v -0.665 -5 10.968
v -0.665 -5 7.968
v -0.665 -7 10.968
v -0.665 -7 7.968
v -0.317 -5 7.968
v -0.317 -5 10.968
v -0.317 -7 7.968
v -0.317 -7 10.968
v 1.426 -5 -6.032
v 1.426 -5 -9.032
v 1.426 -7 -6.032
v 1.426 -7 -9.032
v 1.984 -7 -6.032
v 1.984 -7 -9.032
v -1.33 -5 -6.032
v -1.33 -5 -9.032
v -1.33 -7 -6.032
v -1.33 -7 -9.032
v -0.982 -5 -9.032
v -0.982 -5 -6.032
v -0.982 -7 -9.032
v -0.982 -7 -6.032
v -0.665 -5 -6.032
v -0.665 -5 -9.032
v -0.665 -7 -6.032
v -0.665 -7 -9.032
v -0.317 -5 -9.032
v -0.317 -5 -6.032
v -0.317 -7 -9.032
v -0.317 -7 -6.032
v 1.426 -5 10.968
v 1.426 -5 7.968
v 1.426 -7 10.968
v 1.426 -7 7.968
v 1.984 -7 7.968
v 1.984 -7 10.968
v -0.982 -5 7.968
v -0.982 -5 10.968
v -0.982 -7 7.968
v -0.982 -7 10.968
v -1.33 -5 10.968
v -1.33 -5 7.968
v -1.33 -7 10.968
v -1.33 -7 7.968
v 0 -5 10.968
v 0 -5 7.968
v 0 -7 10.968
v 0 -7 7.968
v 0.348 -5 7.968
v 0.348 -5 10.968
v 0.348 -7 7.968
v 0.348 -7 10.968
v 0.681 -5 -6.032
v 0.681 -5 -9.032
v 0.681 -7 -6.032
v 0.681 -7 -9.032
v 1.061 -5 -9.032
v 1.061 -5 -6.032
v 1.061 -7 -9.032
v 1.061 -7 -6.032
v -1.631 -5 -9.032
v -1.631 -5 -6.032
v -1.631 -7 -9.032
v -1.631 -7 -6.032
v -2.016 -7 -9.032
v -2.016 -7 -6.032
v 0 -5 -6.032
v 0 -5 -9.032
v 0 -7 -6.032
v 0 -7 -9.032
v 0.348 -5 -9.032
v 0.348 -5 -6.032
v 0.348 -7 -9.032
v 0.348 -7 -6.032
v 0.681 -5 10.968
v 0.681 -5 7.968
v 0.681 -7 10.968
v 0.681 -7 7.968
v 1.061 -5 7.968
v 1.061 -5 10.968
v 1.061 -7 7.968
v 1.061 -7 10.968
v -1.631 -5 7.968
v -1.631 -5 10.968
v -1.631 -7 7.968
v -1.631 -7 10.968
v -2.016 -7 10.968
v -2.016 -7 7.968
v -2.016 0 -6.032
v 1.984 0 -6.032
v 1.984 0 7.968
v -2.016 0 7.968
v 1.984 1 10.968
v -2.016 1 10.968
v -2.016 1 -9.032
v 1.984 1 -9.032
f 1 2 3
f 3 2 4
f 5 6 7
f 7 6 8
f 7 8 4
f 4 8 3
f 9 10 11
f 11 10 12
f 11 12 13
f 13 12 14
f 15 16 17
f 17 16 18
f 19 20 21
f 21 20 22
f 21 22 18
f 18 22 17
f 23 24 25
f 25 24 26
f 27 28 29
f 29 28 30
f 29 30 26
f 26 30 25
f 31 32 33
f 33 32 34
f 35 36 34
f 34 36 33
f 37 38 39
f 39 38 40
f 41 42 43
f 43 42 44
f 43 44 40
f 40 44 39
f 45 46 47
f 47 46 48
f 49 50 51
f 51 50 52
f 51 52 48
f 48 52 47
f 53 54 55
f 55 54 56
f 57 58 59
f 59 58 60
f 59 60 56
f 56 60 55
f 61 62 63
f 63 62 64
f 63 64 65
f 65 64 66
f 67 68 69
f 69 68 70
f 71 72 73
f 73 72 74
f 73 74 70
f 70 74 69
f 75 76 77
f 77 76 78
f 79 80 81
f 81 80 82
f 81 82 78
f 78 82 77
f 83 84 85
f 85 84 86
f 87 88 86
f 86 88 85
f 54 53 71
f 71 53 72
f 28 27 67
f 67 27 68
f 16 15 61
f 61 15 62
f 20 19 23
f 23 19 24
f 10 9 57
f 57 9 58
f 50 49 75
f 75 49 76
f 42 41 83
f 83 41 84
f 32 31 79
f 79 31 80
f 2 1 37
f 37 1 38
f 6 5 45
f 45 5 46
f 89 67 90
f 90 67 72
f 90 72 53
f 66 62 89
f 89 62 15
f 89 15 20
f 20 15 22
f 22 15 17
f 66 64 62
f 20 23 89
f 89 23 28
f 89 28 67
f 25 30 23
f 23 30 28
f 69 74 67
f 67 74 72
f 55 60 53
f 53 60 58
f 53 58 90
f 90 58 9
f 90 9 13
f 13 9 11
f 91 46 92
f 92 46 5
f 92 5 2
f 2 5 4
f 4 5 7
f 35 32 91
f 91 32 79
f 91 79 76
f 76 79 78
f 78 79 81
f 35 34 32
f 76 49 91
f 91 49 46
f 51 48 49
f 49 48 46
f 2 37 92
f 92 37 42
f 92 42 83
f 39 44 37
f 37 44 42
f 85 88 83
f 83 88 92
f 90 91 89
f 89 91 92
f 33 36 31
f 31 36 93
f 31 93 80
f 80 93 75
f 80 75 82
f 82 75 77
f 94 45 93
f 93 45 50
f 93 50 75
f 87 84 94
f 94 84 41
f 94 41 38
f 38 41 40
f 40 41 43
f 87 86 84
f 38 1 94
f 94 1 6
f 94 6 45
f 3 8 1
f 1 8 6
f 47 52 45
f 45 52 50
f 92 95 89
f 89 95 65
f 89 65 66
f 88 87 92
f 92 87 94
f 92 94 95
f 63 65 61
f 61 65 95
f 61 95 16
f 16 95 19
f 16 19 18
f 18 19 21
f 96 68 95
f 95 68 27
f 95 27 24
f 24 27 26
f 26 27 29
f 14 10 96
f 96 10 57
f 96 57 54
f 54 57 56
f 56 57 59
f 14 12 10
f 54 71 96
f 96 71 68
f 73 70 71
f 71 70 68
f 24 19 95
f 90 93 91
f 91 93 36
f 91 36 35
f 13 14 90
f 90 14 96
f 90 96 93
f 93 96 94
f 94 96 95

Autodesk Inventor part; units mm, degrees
ref_plane "YZ Plane" through (0, 0, 0) normal (1, 0, 0) x (0, 1, 0)
ref_plane "XZ Plane" through (0, 0, 0) normal (0, 1, 0) x (-1, 0, 0)
ref_plane "XY Plane" through (0, 0, 0) normal (0, 0, 1) x (1, 0, 0)
sketch "Skizze1" plane through (0, 0, 0) normal (0, 1, 0) x (-1, 0, 0)
  line L0 (2.0157, 10.9685) -> (-1.9843, 10.9685)
  line L1 (-1.9843, 10.9685) -> (-1.9843, -9.0315)
  line L2 (-1.9843, -9.0315) -> (2.0157, -9.0315)
  line L3 (2.0157, -9.0315) -> (2.0157, 10.9685)
  point P0 (0, 0)
  dimension "d0" = 4
  dimension "d1" = 20
extrude "Extrusion1" add sketch "Skizze1" along normal blind 1
sketch "Skizze2" plane through (0, 0, 0) normal (0, -1, 0) x (1, 0, 0)
  line L0 (-2.0157, -9.0315) -> (-2.0157, 10.9685) projected
  line L1 (-2.0157, 10.9685) -> (1.9843, 10.9685)
  line L2 (1.9843, 10.9685) -> (1.9843, 7.9685)
  line L3 (1.9843, 7.9685) -> (-2.0157, 7.9685)
  line L4 (-2.0157, 7.9685) -> (-2.0157, 10.9685)
  line L5 (-2.0157, -9.0315) -> (1.9843, -9.0315)
  line L6 (1.9843, -9.0315) -> (1.9843, -6.0315)
  line L7 (1.9843, -6.0315) -> (-2.0157, -6.0315)
  line L8 (-2.0157, -6.0315) -> (-2.0157, -9.0315)
  point P0 (0, 0)
  dimension "d4" = 4
  dimension "d5" = 3
  dimension "d6" = 4
  dimension "d7" = 3
extrude "Extrusion2" add sketch "Skizze2" along normal blind 5
sketch "Skizze3" plane through (0, -5, 0) normal (0, -1, 0) x (1, 0, 0)
  line L0 (1.9843, -9.0315) -> (-2.0157, -9.0315) projected
  line L1 (-2.0157, -6.0315) -> (-1.6314, -6.0315)
  line L2 (-1.6314, -6.0315) -> (-1.6314, -9.0315)
  line L3 (-1.6314, -9.0315) -> (-2.0157, -9.0315)
  line L4 (-2.0157, -9.0315) -> (-2.0157, -6.0315)
  line L5 (1.4255, -6.0315) -> (1.9843, -6.0315)
  line L6 (1.9843, -6.0315) -> (1.9843, -9.0315)
  line L7 (1.9843, -9.0315) -> (1.4255, -9.0315)
  line L8 (1.4255, -9.0315) -> (1.4255, -6.0315)
  line L9 (-1.3305, -6.0315) -> (-0.982, -6.0315)
  line L10 (-0.982, -6.0315) -> (-0.982, -9.0315)
  line L11 (-0.982, -9.0315) -> (-1.3305, -9.0315)
  line L12 (-1.3305, -9.0315) -> (-1.3305, -6.0315)
  line L13 (0, -6.0315) -> (0.3485, -6.0315)
  line L14 (0.3485, -6.0315) -> (0.3485, -9.0315)
  line L15 (0.3485, -9.0315) -> (0, -9.0315)
  line L16 (0, -9.0315) -> (0, -6.0315)
  line L17 (-0.6651, -6.0315) -> (-0.3168, -6.0315)
  line L18 (-0.3168, -6.0315) -> (-0.3168, -9.0315)
  line L19 (-0.3168, -9.0315) -> (-0.6651, -9.0315)
  line L20 (-0.6651, -9.0315) -> (-0.6651, -6.0315)
  line L21 (1.9843, -6.0315) -> (-2.0157, -6.0315) projected
  line L22 (0.6811, -6.0315) -> (1.0612, -6.0315)
  line L23 (1.0612, -6.0315) -> (1.0612, -9.0315)
  line L24 (1.0612, -9.0315) -> (0.6811, -9.0315)
  line L25 (0.6811, -9.0315) -> (0.6811, -6.0315)
  line L26 (-0.6651, 10.9685) -> (-0.3168, 10.9685)
  line L27 (0, 10.9685) -> (0.3485, 10.9685)
  line L28 (-1.6314, 10.9685) -> (-1.6314, 7.9685)
  line L29 (-2.0157, 7.9685) -> (-2.0157, 10.9685)
  line L30 (-1.6314, 7.9685) -> (-2.0157, 7.9685)
  line L31 (0.6811, 10.9685) -> (1.0612, 10.9685)
  line L32 (-0.6651, 7.9685) -> (-0.6651, 10.9685)
  line L33 (-0.3168, 10.9685) -> (-0.3168, 7.9685)
  line L34 (-0.3168, 7.9685) -> (-0.6651, 7.9685)
  line L35 (0, 7.9685) -> (0, 10.9685)
  line L36 (0.3485, 10.9685) -> (0.3485, 7.9685)
  line L37 (0.6811, 7.9685) -> (0.6811, 10.9685)
  line L38 (1.0612, 10.9685) -> (1.0612, 7.9685)
  line L39 (1.0612, 7.9685) -> (0.6811, 7.9685)
  line L40 (1.4255, 7.9685) -> (1.4255, 10.9685)
  line L41 (1.9843, 10.9685) -> (1.9843, 7.9685)
  line L42 (-2.0157, 10.9685) -> (-1.6314, 10.9685)
  line L43 (1.4255, 10.9685) -> (1.9843, 10.9685)
  line L44 (0.3485, 7.9685) -> (0, 7.9685)
  line L45 (1.9843, 7.9685) -> (1.4255, 7.9685)
  line L46 (-0.982, 7.9685) -> (-1.3305, 7.9685)
  line L47 (-1.3305, 10.9685) -> (-0.982, 10.9685)
  line L48 (-1.3305, 7.9685) -> (-1.3305, 10.9685)
  line L49 (-0.982, 10.9685) -> (-0.982, 7.9685)
  point P0 (0, 0)
  point P1 (0, -9.0315)
  dimension "d12" = 17
extrude "Extrusion3" add sketch "Skizze3" along normal blind 2 contours L0 L8 L5 L6 | L0 L25 L21 L23 | L0 L16 L13 L14 | L0 L20 L17 L18 | L0 L12 L9 L10 | L0 L4 L1 L2 | L26 L33 L34 L32 | L27 L36 L44 L35 | L28 L30 L29 L42 | L31 L38 L39 L37 | L40 L43 L41 L45 | L46 L48 L47 L49
properties part number "5 nerve model"
